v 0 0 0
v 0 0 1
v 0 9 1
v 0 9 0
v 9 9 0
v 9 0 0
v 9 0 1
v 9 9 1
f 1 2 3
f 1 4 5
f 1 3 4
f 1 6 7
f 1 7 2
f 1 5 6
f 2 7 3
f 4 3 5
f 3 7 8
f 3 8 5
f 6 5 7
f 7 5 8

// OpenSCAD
/* Warning, this is a very basic generator with a lot of approximation 
input data : [VQFN, WYB, 9x9x1mm, 64, , B, C04-21436B]
generated by com.zoubworld.electronics.cad.model3d.Basic
Date : Sun Feb 15 10:50:49 CET 2026
*/

//body
color("black")
translate([0,0,0])
cube([9.0,9.0,1.0], center=false);
